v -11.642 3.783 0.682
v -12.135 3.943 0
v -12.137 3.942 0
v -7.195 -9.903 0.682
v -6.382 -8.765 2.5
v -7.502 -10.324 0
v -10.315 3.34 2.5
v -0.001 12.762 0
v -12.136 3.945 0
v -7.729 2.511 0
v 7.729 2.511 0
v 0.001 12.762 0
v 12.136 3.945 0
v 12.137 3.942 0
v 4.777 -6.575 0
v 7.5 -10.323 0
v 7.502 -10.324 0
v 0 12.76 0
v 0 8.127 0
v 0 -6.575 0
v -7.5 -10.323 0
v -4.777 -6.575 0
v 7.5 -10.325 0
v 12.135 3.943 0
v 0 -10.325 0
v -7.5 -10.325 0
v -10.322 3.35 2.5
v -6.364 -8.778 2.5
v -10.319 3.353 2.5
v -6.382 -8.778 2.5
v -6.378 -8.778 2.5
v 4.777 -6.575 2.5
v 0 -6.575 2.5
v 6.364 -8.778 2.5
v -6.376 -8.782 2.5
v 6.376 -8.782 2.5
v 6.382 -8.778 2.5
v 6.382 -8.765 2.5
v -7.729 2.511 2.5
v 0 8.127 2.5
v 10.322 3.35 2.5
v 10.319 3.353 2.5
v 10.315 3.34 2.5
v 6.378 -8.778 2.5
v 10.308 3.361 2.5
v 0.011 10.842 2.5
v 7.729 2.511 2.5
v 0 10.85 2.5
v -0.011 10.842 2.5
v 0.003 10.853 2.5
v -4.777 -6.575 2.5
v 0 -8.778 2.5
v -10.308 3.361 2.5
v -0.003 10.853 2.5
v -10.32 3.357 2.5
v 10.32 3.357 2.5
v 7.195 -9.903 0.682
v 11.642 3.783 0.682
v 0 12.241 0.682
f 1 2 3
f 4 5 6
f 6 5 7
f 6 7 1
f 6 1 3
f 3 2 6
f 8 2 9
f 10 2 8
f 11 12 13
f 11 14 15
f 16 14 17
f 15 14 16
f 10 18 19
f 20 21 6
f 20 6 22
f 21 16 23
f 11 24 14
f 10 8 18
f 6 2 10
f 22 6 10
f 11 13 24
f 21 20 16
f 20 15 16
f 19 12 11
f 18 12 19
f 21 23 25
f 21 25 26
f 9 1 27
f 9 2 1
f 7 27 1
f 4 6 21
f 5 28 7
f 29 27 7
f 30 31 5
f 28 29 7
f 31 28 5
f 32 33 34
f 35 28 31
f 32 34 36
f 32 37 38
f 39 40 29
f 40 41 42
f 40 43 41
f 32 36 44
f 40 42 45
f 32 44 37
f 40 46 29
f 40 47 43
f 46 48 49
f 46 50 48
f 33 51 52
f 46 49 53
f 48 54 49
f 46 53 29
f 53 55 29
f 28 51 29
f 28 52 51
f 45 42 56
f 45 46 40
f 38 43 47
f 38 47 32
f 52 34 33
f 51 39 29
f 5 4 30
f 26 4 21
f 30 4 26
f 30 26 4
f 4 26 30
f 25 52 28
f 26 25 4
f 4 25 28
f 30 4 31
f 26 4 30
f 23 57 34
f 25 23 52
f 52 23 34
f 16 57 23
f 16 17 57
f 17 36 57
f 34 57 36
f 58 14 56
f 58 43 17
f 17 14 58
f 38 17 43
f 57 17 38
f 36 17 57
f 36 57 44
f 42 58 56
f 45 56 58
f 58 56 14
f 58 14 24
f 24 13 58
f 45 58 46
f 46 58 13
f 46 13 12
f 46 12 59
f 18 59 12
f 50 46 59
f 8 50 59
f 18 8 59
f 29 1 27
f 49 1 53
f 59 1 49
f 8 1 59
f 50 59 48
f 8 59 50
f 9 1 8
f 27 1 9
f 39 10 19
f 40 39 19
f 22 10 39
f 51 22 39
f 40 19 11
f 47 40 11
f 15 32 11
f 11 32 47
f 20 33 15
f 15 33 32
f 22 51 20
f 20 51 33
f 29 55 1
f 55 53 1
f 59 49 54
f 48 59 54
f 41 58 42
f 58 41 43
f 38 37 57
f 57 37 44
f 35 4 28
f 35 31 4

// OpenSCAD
dim_side = 30;
dim_thickness = 5;

scale(0.5)face();

module full(){
	half();
	translate([ 0, 0, 66.9])rotate([180,0,0])half();
}

module half(){
	face();
	for(r = [0:360/5:360])
	rotate([ 0, 0, r])
	translate([ 0, -41.3 / 2, 0])rotate([ -63.5, 0, 0])translate([ 0, -41.3 / 2, 0])rotate([ 0, 0, 180])face();
}

module face(){
	for(r = [0 : 360 / 5 : 360]){
		rotate([ 0, 0, r])translate([  -0.5 * dim_side, -1.5 * dim_thickness  - 13.15, 0])
		side();
	}
}

module side(){	
	rad_ang = -65.9;
	rad_propper = 58.25;
	difference() {
		cube([dim_side, 1.5 * dim_thickness, dim_thickness]);
		#rotate([ rad_propper, 0, 0])translate([ -0.5, 0, 0])cube([dim_side + 1, 1.5 * dim_thickness, dim_thickness]);
		rotate([ 0, rad_ang, 0])cube(dim_thickness * 1.5 + 1);
		translate([ dim_side, 0, 0])mirror([ 1, 0, 0])rotate([ 0, rad_ang, 0])cube(dim_thickness * 1.5 + 1);
	}
}
